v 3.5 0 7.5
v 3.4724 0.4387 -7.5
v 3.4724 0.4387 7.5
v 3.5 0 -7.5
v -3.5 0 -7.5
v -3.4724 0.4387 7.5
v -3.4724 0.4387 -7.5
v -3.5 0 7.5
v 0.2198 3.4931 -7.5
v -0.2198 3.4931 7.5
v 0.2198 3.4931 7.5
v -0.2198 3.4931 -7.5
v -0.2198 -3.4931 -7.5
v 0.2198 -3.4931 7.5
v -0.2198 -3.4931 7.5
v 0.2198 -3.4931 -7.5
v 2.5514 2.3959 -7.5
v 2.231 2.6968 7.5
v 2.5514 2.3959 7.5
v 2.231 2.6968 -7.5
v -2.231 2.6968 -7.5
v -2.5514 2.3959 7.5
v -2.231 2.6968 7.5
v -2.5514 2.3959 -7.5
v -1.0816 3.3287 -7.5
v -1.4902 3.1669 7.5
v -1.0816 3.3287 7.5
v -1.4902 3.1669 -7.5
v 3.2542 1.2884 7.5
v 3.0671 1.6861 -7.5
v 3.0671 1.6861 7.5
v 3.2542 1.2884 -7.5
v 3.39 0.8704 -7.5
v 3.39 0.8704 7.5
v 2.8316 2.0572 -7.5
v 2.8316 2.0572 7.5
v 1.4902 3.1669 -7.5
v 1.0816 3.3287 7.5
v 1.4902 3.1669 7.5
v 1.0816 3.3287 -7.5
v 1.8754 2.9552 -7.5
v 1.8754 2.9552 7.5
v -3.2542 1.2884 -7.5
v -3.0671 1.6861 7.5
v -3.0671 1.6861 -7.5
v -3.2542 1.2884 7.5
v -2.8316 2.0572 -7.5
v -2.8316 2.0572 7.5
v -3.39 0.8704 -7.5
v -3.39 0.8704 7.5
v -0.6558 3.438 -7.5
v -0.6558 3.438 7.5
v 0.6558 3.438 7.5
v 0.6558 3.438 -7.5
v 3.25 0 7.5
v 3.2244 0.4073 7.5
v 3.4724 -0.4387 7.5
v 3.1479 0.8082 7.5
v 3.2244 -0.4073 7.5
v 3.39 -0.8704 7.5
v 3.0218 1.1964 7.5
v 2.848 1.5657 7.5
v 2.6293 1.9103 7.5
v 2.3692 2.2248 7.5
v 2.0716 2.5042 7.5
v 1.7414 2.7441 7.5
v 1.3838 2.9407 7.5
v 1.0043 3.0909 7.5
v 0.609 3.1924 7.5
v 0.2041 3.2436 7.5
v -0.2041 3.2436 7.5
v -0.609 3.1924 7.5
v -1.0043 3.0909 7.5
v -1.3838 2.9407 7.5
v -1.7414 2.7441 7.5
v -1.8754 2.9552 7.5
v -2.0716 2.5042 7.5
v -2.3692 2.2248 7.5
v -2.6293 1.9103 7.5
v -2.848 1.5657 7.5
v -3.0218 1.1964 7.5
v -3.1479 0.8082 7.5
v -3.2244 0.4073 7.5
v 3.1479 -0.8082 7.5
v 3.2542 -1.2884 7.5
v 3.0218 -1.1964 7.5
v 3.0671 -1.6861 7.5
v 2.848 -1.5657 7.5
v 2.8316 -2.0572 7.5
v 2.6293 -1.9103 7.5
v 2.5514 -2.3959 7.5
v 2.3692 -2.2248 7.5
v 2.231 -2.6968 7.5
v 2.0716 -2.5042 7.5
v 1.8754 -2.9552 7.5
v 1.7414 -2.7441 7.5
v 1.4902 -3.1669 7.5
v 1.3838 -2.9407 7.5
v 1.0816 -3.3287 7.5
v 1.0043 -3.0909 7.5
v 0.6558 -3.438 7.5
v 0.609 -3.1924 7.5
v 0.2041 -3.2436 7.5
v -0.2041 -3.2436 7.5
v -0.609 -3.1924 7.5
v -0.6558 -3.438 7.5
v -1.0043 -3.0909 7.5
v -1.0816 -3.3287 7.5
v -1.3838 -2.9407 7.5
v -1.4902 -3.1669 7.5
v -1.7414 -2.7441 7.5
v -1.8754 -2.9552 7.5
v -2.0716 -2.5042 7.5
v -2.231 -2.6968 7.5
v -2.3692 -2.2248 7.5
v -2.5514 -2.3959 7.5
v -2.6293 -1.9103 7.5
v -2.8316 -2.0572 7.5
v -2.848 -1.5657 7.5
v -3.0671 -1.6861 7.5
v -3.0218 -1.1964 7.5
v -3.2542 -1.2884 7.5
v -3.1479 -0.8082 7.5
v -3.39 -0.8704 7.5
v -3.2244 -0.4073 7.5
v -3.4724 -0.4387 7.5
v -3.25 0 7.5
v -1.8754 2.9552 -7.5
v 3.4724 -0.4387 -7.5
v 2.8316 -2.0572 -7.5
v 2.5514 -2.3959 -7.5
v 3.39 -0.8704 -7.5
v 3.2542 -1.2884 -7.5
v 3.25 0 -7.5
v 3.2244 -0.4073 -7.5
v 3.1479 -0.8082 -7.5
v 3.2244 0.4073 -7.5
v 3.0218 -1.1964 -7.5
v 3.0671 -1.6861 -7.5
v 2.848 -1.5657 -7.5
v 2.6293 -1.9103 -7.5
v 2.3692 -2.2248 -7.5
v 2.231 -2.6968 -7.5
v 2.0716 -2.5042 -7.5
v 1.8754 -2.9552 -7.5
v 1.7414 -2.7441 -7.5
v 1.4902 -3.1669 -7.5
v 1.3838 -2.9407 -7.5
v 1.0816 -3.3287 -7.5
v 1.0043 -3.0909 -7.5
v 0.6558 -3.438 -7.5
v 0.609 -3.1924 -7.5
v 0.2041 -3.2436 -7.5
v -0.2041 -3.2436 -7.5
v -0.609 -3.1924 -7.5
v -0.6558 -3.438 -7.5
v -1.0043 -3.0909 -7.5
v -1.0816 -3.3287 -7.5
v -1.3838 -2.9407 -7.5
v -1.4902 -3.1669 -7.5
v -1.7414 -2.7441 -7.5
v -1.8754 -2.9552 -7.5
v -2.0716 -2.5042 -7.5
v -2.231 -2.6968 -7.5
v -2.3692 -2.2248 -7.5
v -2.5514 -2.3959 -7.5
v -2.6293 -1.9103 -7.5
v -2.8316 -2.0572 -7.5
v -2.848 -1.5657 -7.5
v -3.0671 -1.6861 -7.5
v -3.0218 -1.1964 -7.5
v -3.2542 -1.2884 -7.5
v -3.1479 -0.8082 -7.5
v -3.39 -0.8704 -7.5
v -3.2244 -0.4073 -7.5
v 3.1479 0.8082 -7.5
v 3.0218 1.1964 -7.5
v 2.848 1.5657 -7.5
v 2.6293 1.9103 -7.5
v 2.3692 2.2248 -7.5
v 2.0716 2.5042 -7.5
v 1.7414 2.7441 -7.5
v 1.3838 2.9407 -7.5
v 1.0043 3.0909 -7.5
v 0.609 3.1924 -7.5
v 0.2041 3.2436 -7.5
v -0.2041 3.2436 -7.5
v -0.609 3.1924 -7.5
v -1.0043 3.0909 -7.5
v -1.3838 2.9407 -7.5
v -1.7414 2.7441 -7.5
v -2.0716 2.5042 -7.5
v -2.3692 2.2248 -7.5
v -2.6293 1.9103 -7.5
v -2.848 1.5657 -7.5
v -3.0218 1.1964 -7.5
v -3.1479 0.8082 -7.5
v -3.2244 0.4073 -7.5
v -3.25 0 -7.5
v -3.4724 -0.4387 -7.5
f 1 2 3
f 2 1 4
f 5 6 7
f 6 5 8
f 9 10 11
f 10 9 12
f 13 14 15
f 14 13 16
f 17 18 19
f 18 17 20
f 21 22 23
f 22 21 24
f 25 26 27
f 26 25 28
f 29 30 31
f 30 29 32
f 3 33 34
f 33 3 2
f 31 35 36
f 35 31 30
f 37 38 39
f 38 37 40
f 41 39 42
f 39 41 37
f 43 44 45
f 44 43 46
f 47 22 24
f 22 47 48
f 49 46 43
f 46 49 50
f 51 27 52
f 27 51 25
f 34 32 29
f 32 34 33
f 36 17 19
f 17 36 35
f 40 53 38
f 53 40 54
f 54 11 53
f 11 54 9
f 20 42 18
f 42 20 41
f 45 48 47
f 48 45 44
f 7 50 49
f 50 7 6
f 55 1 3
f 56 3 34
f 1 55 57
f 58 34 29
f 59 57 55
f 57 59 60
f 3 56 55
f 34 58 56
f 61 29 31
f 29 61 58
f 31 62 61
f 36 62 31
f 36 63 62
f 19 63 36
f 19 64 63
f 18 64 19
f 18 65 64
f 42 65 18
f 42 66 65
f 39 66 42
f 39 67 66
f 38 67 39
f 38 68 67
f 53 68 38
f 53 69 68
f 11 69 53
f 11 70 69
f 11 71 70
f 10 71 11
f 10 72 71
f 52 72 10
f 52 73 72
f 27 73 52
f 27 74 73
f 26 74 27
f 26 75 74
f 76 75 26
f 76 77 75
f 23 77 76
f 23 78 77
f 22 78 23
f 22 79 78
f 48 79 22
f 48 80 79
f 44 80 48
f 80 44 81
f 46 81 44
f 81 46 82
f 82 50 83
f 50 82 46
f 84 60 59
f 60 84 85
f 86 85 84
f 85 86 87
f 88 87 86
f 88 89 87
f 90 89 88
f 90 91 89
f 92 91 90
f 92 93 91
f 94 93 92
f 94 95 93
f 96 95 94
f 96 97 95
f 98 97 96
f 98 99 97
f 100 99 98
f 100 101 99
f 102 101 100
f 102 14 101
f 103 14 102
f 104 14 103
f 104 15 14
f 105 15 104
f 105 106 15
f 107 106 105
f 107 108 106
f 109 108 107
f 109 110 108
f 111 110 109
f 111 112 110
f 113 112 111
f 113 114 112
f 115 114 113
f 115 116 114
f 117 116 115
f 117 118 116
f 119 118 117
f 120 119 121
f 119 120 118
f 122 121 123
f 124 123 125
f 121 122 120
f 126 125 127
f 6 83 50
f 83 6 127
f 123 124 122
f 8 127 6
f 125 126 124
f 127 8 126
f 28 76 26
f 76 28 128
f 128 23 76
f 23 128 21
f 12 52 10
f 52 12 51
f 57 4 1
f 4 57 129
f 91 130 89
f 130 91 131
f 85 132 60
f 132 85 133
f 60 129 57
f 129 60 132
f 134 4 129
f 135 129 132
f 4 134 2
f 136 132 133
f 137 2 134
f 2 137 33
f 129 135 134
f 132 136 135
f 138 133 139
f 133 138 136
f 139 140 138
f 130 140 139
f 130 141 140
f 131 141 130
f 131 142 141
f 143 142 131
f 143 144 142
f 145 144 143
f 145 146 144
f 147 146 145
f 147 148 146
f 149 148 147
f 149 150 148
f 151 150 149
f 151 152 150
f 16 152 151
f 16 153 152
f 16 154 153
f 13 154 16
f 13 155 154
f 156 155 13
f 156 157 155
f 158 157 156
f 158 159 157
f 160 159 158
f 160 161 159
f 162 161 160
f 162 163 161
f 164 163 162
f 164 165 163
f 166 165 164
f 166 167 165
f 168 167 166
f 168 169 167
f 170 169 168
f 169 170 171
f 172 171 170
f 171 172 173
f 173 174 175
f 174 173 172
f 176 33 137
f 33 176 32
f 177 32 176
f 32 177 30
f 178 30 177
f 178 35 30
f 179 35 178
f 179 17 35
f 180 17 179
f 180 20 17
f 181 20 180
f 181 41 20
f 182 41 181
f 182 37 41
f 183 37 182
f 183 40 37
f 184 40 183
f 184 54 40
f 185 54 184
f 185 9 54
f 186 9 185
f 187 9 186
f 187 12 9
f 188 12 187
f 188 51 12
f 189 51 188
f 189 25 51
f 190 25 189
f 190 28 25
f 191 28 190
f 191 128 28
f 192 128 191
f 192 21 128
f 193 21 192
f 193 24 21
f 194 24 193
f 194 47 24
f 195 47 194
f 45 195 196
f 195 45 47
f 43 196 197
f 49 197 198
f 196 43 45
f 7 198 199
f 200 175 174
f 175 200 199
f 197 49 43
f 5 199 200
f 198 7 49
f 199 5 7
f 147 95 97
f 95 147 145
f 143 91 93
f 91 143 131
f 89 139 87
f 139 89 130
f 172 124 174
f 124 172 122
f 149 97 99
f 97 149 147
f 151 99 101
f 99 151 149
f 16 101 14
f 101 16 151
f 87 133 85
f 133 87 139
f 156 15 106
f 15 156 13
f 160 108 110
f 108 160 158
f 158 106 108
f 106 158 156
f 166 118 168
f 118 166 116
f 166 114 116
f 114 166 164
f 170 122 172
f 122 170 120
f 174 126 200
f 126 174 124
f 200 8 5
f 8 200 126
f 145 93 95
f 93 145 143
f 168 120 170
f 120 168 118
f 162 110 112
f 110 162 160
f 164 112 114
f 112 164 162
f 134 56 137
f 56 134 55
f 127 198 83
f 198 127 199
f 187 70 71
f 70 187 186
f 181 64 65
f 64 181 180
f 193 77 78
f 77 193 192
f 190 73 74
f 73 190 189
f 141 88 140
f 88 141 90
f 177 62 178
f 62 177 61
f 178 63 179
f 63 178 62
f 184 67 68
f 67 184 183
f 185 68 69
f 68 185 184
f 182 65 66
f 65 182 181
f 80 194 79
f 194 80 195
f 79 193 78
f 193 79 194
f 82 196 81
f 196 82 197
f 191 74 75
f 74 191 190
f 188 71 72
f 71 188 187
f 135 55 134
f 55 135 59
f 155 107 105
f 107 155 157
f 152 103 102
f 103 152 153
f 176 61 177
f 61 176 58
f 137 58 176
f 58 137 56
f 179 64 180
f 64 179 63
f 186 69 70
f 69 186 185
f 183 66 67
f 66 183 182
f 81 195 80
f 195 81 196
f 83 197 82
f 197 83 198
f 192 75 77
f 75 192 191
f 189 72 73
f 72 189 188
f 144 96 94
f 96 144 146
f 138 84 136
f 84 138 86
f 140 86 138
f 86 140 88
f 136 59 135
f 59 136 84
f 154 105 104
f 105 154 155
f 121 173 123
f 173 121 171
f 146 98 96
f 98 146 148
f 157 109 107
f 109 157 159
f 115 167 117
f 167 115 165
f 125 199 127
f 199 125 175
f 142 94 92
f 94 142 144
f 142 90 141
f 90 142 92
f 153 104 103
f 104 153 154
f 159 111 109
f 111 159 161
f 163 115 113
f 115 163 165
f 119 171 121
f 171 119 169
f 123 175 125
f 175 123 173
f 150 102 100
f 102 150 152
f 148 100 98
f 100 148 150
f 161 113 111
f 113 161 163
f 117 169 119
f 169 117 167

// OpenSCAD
$fn = 50;


difference() {
	union() {
		translate(v = [0, 0, -7.5000000000]) {
			cylinder(h = 15, r = 3.5000000000);
		}
	}
	union() {
		translate(v = [0, 0, -100.0000000000]) {
			cylinder(h = 200, r = 3.2500000000);
		}
	}
}
